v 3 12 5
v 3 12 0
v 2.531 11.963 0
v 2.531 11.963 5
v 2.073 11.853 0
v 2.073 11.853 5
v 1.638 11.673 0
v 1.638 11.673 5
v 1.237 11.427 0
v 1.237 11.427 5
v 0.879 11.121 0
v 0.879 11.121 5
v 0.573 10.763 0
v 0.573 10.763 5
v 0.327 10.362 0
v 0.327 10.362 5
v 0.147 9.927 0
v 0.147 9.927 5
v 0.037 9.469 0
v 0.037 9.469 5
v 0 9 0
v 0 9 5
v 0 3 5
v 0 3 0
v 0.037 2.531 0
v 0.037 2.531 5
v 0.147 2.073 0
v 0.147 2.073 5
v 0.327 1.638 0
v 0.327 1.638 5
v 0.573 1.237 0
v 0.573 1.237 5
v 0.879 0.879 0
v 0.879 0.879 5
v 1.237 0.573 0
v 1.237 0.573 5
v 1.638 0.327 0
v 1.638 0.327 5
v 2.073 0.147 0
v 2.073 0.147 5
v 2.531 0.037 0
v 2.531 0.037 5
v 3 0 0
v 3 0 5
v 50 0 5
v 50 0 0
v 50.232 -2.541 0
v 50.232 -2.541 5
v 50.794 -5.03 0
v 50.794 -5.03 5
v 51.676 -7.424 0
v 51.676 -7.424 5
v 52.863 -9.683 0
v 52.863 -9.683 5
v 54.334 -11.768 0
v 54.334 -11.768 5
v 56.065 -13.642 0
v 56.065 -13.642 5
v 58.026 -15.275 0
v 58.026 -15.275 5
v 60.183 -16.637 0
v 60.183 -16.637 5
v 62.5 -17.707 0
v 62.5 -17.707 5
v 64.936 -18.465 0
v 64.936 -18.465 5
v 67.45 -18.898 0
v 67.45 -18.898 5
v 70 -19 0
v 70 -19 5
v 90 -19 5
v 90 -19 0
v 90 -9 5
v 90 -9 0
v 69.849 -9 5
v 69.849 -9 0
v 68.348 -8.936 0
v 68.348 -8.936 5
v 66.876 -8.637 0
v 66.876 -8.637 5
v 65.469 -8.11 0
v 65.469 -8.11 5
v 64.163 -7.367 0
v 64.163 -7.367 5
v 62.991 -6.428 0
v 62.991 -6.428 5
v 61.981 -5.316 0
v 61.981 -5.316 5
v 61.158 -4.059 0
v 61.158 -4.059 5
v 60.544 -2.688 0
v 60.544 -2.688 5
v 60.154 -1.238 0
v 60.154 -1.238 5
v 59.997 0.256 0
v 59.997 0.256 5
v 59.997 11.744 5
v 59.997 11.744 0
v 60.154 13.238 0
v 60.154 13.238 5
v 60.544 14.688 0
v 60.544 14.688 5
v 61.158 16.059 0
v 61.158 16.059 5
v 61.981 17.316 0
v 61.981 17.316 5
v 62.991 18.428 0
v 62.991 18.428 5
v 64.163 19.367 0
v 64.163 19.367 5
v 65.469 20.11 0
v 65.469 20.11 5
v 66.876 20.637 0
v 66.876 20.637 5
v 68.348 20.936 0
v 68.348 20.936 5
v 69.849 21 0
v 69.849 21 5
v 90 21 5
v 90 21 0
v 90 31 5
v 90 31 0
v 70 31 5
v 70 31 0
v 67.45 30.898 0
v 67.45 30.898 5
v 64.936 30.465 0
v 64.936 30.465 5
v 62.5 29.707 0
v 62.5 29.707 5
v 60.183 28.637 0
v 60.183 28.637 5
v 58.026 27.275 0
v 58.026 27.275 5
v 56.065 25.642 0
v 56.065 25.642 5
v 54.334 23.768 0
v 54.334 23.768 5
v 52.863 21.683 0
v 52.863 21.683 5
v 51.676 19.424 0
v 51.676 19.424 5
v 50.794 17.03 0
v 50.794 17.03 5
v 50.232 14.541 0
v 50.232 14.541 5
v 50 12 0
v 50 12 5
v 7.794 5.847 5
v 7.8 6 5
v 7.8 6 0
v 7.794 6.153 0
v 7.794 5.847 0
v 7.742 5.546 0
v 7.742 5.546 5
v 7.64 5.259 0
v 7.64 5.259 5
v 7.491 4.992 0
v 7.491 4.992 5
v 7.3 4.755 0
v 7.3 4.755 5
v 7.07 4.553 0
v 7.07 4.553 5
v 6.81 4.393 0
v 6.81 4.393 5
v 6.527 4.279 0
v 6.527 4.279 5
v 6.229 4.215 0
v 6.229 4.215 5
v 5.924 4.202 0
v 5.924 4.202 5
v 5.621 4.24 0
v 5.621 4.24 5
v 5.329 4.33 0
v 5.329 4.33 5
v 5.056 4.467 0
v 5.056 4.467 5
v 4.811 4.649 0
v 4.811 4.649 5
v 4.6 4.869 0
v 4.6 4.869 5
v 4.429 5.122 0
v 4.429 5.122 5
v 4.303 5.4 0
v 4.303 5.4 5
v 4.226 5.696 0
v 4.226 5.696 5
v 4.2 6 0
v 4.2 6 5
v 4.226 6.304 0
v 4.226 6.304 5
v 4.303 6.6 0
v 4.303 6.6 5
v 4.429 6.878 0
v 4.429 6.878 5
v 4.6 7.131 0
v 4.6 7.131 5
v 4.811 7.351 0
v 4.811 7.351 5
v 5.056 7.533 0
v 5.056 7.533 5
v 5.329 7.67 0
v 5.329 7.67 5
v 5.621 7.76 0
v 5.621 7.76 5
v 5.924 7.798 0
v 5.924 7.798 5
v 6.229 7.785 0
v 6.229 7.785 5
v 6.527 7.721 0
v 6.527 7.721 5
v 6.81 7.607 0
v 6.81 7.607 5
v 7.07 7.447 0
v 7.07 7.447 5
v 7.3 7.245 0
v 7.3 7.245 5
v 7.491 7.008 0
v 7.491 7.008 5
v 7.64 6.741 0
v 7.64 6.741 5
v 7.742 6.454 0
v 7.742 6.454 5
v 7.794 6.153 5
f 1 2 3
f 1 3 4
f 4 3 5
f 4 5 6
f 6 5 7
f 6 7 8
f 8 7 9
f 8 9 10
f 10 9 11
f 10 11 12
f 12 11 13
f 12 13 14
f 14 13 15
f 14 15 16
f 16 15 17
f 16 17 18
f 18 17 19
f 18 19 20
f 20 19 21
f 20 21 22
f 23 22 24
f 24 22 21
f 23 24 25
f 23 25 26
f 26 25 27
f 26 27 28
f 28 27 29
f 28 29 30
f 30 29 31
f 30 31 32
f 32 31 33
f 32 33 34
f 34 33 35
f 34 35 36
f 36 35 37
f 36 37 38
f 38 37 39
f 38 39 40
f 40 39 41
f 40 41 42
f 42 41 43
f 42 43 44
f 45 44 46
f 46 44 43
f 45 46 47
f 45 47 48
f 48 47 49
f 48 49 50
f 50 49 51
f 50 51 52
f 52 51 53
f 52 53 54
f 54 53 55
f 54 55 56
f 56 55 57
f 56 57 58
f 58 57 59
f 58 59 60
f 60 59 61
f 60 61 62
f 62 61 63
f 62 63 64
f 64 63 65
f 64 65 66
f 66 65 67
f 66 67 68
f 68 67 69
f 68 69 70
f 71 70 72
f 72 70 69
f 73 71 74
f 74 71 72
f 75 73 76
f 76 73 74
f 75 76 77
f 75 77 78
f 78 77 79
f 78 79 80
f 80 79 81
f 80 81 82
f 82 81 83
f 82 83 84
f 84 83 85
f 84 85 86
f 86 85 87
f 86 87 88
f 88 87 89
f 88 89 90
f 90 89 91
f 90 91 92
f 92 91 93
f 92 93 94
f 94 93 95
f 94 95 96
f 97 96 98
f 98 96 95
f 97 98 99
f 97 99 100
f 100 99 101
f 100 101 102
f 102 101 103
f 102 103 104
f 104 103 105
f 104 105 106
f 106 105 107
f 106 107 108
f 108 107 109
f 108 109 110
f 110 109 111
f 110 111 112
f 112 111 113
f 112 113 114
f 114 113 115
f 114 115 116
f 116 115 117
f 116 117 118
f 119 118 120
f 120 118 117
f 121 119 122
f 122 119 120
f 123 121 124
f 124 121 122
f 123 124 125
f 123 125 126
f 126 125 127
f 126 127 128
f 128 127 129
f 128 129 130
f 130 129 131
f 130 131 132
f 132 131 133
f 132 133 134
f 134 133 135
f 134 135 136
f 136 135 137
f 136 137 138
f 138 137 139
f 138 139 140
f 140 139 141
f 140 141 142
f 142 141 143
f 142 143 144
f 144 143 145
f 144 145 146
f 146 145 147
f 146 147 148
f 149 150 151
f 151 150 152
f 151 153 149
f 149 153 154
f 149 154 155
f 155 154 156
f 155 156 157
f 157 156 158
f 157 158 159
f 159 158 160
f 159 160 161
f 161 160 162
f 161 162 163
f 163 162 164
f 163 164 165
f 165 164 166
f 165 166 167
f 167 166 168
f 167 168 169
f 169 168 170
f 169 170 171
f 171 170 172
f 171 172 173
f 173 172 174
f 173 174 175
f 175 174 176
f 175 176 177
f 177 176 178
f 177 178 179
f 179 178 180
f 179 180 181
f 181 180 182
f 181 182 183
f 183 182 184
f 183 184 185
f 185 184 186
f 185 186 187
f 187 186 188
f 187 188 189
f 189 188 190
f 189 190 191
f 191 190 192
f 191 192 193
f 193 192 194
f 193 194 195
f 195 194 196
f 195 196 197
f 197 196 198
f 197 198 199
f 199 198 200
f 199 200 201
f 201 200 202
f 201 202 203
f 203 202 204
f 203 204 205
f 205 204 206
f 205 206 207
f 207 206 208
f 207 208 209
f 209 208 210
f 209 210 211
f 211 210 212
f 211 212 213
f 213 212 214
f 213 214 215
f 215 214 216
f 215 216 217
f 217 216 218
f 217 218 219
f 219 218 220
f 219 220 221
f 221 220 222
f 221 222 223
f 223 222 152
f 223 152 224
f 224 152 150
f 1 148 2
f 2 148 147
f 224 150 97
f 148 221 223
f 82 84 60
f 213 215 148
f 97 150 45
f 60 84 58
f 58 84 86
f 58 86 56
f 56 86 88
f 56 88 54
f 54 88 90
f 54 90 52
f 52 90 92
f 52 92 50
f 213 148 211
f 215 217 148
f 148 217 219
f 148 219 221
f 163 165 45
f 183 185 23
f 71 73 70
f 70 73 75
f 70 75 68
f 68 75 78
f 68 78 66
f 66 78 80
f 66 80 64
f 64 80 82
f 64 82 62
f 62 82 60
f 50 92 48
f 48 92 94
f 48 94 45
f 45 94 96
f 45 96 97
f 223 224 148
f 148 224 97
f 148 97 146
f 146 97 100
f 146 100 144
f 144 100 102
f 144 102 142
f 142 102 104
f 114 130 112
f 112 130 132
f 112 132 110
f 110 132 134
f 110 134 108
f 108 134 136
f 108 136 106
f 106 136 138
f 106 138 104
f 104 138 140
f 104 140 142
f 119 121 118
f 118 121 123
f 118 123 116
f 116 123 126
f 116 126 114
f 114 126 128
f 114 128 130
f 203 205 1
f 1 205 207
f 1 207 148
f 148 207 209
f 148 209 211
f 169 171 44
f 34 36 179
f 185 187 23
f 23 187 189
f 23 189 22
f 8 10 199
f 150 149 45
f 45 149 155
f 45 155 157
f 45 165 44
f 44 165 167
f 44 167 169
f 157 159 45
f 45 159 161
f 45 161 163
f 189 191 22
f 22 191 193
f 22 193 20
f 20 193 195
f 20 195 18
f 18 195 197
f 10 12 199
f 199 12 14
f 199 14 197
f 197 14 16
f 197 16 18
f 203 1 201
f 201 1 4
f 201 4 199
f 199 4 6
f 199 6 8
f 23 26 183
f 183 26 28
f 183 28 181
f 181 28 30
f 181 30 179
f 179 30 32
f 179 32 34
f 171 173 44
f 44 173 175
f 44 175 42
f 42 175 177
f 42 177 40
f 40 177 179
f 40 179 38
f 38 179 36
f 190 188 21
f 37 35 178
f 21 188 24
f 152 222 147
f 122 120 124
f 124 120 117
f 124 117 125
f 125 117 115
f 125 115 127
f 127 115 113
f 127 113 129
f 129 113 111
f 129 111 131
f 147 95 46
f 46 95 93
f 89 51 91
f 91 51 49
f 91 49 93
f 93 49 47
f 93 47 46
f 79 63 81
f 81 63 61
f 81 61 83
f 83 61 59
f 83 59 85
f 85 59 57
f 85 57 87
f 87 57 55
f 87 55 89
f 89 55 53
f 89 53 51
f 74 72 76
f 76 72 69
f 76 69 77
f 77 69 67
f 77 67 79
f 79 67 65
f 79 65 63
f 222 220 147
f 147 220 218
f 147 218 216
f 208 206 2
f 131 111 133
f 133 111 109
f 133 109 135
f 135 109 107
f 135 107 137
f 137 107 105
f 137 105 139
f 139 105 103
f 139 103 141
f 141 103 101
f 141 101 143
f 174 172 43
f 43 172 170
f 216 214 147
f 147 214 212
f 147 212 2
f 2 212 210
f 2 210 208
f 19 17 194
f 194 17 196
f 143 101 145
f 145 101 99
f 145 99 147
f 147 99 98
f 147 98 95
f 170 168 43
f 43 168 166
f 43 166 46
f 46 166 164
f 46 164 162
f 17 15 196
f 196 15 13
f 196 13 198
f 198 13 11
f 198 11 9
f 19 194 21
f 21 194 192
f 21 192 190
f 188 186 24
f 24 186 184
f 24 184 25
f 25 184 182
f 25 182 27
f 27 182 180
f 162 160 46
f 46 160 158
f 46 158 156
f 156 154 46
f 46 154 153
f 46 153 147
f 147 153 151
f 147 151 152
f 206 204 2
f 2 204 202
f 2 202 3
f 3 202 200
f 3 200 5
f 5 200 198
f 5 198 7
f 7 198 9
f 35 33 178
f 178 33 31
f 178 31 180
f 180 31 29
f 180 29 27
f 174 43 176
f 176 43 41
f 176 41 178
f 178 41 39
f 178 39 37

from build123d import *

# Parameters (mm, degrees)
SKETCH1_R           = 1.8
BOSS_EXTRUDE2_DEPTH = 5


with BuildPart() as part:
    # Sketch1 → Boss-Extrude2 (new body)
    # profile 1 of 2: a face of its own
    with BuildSketch(Plane.XY):
        with BuildLine():
            ThreePointArc((0, 9), (0.878679656, 11.121320344), (3, 12))
            Line((3, 12), (50, 12))
            Line((50, 12), (50, 0))
            Line((50, 0), (3, 0))
            ThreePointArc((3, 0), (0.878679656, 0.878679656), (0, 3))
            Line((0, 3), (0, 9))
        make_face()
        with Locations((6, 6)):
            Circle(SKETCH1_R, mode=Mode.SUBTRACT)
    # profile 2 of 2: a face of its own
    with BuildSketch(Plane.XY):
        with BuildLine():
            Line((90, -9), (69.8490214, -9))
            ThreePointArc((69.8490214, -9), (62.990773359, -6.428332012), (59.996714309, 0.256326008))
            Line((59.996714309, 0.256326008), (59.996714309, 11.743673992))
            ThreePointArc((59.996714309, 11.743673992), (62.990773359, 18.428332012), (69.8490214, 21))
            Line((69.8490214, 21), (90, 21))
            Line((90, 21), (90, 31))
            Line((90, 31), (70, 31))
            ThreePointArc((70, 31), (56.064971157, 25.642135624), (50, 12))
            Line((50, 12), (50, 0))
            ThreePointArc((50, 0), (56.064971157, -13.642135624), (70, -19))
            Line((70, -19), (90, -19))
            Line((90, -19), (90, -9))
        make_face()
    extrude(amount=BOSS_EXTRUDE2_DEPTH)


solid = part.part
